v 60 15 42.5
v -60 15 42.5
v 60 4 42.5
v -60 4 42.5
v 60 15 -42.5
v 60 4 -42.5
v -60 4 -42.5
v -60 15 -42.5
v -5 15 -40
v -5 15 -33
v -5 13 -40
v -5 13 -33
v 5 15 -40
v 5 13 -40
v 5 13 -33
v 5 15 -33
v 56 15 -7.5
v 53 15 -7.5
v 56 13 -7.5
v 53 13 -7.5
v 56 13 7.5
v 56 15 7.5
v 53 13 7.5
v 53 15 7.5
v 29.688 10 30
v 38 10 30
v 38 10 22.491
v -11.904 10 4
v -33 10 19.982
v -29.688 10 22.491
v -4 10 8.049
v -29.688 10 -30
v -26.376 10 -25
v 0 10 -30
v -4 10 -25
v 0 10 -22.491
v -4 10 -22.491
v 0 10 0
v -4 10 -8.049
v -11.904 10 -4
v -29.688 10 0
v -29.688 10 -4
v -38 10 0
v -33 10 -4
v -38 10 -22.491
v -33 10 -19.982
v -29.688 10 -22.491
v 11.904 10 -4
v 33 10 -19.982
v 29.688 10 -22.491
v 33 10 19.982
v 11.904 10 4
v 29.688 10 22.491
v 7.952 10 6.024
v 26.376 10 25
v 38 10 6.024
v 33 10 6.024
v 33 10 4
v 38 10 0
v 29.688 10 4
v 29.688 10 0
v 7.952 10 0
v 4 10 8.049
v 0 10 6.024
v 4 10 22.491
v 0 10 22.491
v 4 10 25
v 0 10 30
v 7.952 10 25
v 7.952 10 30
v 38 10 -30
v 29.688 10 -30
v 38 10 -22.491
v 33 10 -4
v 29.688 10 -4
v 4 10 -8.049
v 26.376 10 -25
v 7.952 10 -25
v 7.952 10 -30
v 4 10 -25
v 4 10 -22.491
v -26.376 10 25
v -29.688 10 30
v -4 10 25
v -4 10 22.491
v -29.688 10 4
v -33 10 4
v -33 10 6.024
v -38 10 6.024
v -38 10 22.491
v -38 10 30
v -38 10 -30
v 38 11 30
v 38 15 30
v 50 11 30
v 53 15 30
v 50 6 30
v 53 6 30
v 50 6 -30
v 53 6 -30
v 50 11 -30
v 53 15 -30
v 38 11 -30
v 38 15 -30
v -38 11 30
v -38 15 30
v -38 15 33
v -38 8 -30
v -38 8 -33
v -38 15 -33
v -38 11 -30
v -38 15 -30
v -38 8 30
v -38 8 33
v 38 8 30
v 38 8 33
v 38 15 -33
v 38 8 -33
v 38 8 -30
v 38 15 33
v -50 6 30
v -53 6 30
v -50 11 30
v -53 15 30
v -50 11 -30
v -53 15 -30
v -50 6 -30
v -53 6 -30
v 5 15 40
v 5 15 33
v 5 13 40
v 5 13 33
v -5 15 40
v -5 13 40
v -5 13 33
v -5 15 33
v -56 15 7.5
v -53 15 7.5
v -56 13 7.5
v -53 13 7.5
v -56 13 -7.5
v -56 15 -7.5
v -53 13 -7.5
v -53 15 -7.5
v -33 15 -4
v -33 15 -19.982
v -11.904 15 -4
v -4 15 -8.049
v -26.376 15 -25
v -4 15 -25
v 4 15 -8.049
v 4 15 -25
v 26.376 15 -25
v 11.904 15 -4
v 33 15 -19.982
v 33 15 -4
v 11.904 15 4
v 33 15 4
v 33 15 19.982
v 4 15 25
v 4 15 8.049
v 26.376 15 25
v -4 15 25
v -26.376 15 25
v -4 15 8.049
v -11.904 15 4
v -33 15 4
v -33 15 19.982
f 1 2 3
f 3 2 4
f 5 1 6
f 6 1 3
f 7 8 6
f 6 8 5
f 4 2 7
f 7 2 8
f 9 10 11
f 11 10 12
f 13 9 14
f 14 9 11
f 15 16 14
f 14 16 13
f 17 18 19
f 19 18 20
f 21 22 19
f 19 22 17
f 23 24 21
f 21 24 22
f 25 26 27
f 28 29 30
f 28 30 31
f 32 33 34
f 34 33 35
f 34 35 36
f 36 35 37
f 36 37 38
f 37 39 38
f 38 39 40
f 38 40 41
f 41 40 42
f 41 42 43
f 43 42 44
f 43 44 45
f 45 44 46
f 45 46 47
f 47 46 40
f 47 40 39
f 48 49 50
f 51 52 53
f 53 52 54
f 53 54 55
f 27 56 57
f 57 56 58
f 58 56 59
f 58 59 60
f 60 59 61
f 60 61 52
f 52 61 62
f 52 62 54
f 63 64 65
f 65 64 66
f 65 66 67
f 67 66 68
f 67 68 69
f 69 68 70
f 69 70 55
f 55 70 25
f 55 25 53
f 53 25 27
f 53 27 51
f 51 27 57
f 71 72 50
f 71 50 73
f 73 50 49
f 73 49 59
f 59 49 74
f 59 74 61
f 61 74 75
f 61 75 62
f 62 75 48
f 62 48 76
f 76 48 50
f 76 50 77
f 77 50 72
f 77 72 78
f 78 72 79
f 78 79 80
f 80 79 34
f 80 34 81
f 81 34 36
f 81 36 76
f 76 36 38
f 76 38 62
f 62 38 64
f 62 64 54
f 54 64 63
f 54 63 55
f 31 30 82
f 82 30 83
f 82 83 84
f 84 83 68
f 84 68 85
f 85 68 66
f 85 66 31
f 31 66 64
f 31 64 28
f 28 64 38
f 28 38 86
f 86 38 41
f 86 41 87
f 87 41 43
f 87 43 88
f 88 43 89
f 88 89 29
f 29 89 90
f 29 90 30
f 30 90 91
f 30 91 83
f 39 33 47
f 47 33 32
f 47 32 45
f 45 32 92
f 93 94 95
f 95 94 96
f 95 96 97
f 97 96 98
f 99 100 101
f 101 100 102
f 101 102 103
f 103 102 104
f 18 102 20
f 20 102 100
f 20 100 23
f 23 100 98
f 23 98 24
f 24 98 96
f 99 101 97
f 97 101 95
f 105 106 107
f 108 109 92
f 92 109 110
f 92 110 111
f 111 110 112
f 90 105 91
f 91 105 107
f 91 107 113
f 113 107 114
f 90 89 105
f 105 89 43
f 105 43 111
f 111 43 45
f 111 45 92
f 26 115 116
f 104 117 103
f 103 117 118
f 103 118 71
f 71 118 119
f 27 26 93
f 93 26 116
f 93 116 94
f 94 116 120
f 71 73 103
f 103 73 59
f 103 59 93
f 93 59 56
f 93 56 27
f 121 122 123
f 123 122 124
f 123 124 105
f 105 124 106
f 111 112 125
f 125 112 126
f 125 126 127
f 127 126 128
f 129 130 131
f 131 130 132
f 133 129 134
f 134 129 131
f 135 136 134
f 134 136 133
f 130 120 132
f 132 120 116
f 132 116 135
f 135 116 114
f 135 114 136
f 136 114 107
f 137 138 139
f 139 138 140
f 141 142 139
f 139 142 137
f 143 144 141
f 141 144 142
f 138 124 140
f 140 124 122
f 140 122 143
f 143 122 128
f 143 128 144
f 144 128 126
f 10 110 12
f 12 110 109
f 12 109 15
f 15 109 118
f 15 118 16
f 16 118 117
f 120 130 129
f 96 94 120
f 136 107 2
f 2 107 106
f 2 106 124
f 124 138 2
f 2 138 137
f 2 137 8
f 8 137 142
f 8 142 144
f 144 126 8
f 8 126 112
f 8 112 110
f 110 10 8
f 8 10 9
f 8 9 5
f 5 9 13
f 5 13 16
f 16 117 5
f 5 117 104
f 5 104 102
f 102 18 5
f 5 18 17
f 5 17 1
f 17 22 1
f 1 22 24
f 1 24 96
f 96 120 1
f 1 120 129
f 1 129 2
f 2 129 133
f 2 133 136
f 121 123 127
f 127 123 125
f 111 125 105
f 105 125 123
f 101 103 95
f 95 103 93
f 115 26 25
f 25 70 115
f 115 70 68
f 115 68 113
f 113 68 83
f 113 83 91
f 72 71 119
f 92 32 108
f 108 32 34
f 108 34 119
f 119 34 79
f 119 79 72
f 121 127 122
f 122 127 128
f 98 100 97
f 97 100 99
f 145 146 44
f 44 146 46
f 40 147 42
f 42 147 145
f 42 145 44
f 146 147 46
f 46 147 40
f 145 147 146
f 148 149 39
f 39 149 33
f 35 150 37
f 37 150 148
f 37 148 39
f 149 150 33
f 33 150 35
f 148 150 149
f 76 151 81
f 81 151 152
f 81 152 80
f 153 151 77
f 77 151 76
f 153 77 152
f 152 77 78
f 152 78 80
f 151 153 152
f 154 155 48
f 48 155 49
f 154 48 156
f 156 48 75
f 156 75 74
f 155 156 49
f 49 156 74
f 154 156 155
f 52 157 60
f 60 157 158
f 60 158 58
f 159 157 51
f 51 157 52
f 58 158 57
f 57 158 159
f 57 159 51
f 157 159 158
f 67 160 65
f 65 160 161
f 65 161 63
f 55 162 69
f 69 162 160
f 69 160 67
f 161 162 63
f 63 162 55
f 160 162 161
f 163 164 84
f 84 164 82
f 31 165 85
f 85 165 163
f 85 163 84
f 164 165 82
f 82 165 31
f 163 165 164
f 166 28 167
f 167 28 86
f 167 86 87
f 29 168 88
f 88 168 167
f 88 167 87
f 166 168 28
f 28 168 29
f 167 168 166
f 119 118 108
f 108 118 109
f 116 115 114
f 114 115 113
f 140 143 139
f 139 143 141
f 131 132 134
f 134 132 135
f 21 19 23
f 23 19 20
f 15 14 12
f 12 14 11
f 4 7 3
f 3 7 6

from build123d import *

# Parameters (mm, degrees)
SKETCH1_W            = 120
SKETCH1_H            = 85
BOSS_EXTRUDE1_DEPTH  = 15
SKETCH9_W            = 12
SKETCH9_H            = 60
BOSS_EXTRUDE2_DEPTH  = 11
SKETCH10_W           = 76
SKETCH10_H           = 60
BOSS_EXTRUDE4_DEPTH  = 10
SKETCH12_W           = 3
SKETCH12_H           = 60
BOSS_EXTRUDE11_DEPTH = 6
BOSS_EXTRUDE12_DEPTH = 5
SKETCH14_W           = 76
SKETCH14_H           = 3
BOSS_EXTRUDE13_DEPTH = 8
SKETCH15_W           = 3
SKETCH15_H           = 15
SKETCH15_W_2         = 10
SKETCH15_H_2         = 7
BOSS_EXTRUDE14_DEPTH = 13
SKETCH16_W           = 120
SKETCH16_H           = 85
CUT_EXTRUDE3_DEPTH   = 4


with BuildPart() as part:
    # Sketch1 → Boss-Extrude1 (new body)
    with BuildSketch(Plane(origin=(0, 0, 0), x_dir=(1, 0, 0), z_dir=(0, 1, 0))):
        Rectangle(SKETCH1_W, SKETCH1_H)
        Polygon((-50, -30), (-53, -30), (-53, -7.5), (-56, -7.5), (-56, 7.5), (-53, 7.5), (-53, 25), (-53, 30), (-50, 30), (-38, 30), (-38, 33), (-5, 33), (-5, 40), (5, 40), (5, 33), (38, 33), (38, 30), (50, 30), (53, 30), (53, 7.5), (56, 7.5), (56, -7.5), (53, -7.5), (53, -30), (50, -30), (38, -30), (38, -33), (5, -33), (5, -40), (-5, -40), (-5, -33), (-38, -33), (-38, -30), align=None, mode=Mode.SUBTRACT)
    extrude(amount=BOSS_EXTRUDE1_DEPTH)

    # Sketch9 → Boss-Extrude2 (add)
    with BuildSketch(Plane(origin=(0, 0, 0), x_dir=(1, 0, 0), z_dir=(0, 1, 0))):
        with Locations((-44, 0)):
            Rectangle(SKETCH9_W, SKETCH9_H)
        with Locations((44, 0)):
            Rectangle(SKETCH9_W, SKETCH9_H)
    extrude(amount=BOSS_EXTRUDE2_DEPTH)

    # Sketch10 → Boss-Extrude4 (add)
    with BuildSketch(Plane(origin=(0, 0, 0), x_dir=(1, 0, 0), z_dir=(0, 1, 0))):
        Rectangle(SKETCH10_W, SKETCH10_H)
    extrude(amount=BOSS_EXTRUDE4_DEPTH)

    # Sketch12 → Boss-Extrude11 (add)
    with BuildSketch(Plane(origin=(0, 0, 0), x_dir=(1, 0, 0), z_dir=(0, 1, 0))):
        with Locations((-51.5, 0)):
            Rectangle(SKETCH12_W, SKETCH12_H)
        with Locations((51.5, 0)):
            Rectangle(SKETCH12_W, SKETCH12_H)
    extrude(amount=BOSS_EXTRUDE11_DEPTH)

    # Sketch13 → Boss-Extrude12 (add)
    with BuildSketch(Plane(origin=(0, 10, 0), x_dir=(1, 0, 0), z_dir=(0, 1, 0))):
        Polygon((-33, 19.981759626), (-33, 4), (-11.904077294, 4), align=None)
        Polygon((-26.375922706, 25), (-4, 8.048543405), (-4, 25), align=None)
        Polygon((4, 25), (4, 8.048543405), (26.375922706, 25), align=None)
        Polygon((11.904077294, 4), (33, 4), (33, 19.981759626), align=None)
        Polygon((11.904077294, -4), (33, -19.981759626), (33, -4), align=None)
        Polygon((4, -8.048543405), (4, -25), (26.375922706, -25), align=None)
        Polygon((-26.375922706, -25), (-4, -25), (-4, -8.048543405), align=None)
        Polygon((-33, -4), (-33, -19.981759626), (-11.904077294, -4), align=None)
    extrude(amount=BOSS_EXTRUDE12_DEPTH)

    # Sketch14 → Boss-Extrude13 (add)
    with BuildSketch(Plane(origin=(0, 0, 0), x_dir=(1, 0, 0), z_dir=(0, 1, 0))):
        with Locations((0, 31.5)):
            Rectangle(SKETCH14_W, SKETCH14_H)
        with Locations((0, -31.5)):
            Rectangle(SKETCH14_W, SKETCH14_H)
    extrude(amount=BOSS_EXTRUDE13_DEPTH)

    # Sketch15 → Boss-Extrude14 (add)
    with BuildSketch(Plane(origin=(0, 0, 0), x_dir=(1, 0, 0), z_dir=(0, 1, 0))):
        with Locations((-54.5, 0)):
            Rectangle(SKETCH15_W, SKETCH15_H)
        with Locations((0, -36.5)):
            Rectangle(SKETCH15_W_2, SKETCH15_H_2)
        with Locations((54.5, 0)):
            Rectangle(SKETCH15_W, SKETCH15_H)
        with Locations((0, 36.5)):
            Rectangle(SKETCH15_W_2, SKETCH15_H_2)
    extrude(amount=BOSS_EXTRUDE14_DEPTH)

    # Sketch16 → Cut-Extrude3 (cut)
    with BuildSketch(Plane.XZ):
        Rectangle(SKETCH16_W, SKETCH16_H)
    extrude(amount=-CUT_EXTRUDE3_DEPTH, mode=Mode.SUBTRACT)


solid = part.part
